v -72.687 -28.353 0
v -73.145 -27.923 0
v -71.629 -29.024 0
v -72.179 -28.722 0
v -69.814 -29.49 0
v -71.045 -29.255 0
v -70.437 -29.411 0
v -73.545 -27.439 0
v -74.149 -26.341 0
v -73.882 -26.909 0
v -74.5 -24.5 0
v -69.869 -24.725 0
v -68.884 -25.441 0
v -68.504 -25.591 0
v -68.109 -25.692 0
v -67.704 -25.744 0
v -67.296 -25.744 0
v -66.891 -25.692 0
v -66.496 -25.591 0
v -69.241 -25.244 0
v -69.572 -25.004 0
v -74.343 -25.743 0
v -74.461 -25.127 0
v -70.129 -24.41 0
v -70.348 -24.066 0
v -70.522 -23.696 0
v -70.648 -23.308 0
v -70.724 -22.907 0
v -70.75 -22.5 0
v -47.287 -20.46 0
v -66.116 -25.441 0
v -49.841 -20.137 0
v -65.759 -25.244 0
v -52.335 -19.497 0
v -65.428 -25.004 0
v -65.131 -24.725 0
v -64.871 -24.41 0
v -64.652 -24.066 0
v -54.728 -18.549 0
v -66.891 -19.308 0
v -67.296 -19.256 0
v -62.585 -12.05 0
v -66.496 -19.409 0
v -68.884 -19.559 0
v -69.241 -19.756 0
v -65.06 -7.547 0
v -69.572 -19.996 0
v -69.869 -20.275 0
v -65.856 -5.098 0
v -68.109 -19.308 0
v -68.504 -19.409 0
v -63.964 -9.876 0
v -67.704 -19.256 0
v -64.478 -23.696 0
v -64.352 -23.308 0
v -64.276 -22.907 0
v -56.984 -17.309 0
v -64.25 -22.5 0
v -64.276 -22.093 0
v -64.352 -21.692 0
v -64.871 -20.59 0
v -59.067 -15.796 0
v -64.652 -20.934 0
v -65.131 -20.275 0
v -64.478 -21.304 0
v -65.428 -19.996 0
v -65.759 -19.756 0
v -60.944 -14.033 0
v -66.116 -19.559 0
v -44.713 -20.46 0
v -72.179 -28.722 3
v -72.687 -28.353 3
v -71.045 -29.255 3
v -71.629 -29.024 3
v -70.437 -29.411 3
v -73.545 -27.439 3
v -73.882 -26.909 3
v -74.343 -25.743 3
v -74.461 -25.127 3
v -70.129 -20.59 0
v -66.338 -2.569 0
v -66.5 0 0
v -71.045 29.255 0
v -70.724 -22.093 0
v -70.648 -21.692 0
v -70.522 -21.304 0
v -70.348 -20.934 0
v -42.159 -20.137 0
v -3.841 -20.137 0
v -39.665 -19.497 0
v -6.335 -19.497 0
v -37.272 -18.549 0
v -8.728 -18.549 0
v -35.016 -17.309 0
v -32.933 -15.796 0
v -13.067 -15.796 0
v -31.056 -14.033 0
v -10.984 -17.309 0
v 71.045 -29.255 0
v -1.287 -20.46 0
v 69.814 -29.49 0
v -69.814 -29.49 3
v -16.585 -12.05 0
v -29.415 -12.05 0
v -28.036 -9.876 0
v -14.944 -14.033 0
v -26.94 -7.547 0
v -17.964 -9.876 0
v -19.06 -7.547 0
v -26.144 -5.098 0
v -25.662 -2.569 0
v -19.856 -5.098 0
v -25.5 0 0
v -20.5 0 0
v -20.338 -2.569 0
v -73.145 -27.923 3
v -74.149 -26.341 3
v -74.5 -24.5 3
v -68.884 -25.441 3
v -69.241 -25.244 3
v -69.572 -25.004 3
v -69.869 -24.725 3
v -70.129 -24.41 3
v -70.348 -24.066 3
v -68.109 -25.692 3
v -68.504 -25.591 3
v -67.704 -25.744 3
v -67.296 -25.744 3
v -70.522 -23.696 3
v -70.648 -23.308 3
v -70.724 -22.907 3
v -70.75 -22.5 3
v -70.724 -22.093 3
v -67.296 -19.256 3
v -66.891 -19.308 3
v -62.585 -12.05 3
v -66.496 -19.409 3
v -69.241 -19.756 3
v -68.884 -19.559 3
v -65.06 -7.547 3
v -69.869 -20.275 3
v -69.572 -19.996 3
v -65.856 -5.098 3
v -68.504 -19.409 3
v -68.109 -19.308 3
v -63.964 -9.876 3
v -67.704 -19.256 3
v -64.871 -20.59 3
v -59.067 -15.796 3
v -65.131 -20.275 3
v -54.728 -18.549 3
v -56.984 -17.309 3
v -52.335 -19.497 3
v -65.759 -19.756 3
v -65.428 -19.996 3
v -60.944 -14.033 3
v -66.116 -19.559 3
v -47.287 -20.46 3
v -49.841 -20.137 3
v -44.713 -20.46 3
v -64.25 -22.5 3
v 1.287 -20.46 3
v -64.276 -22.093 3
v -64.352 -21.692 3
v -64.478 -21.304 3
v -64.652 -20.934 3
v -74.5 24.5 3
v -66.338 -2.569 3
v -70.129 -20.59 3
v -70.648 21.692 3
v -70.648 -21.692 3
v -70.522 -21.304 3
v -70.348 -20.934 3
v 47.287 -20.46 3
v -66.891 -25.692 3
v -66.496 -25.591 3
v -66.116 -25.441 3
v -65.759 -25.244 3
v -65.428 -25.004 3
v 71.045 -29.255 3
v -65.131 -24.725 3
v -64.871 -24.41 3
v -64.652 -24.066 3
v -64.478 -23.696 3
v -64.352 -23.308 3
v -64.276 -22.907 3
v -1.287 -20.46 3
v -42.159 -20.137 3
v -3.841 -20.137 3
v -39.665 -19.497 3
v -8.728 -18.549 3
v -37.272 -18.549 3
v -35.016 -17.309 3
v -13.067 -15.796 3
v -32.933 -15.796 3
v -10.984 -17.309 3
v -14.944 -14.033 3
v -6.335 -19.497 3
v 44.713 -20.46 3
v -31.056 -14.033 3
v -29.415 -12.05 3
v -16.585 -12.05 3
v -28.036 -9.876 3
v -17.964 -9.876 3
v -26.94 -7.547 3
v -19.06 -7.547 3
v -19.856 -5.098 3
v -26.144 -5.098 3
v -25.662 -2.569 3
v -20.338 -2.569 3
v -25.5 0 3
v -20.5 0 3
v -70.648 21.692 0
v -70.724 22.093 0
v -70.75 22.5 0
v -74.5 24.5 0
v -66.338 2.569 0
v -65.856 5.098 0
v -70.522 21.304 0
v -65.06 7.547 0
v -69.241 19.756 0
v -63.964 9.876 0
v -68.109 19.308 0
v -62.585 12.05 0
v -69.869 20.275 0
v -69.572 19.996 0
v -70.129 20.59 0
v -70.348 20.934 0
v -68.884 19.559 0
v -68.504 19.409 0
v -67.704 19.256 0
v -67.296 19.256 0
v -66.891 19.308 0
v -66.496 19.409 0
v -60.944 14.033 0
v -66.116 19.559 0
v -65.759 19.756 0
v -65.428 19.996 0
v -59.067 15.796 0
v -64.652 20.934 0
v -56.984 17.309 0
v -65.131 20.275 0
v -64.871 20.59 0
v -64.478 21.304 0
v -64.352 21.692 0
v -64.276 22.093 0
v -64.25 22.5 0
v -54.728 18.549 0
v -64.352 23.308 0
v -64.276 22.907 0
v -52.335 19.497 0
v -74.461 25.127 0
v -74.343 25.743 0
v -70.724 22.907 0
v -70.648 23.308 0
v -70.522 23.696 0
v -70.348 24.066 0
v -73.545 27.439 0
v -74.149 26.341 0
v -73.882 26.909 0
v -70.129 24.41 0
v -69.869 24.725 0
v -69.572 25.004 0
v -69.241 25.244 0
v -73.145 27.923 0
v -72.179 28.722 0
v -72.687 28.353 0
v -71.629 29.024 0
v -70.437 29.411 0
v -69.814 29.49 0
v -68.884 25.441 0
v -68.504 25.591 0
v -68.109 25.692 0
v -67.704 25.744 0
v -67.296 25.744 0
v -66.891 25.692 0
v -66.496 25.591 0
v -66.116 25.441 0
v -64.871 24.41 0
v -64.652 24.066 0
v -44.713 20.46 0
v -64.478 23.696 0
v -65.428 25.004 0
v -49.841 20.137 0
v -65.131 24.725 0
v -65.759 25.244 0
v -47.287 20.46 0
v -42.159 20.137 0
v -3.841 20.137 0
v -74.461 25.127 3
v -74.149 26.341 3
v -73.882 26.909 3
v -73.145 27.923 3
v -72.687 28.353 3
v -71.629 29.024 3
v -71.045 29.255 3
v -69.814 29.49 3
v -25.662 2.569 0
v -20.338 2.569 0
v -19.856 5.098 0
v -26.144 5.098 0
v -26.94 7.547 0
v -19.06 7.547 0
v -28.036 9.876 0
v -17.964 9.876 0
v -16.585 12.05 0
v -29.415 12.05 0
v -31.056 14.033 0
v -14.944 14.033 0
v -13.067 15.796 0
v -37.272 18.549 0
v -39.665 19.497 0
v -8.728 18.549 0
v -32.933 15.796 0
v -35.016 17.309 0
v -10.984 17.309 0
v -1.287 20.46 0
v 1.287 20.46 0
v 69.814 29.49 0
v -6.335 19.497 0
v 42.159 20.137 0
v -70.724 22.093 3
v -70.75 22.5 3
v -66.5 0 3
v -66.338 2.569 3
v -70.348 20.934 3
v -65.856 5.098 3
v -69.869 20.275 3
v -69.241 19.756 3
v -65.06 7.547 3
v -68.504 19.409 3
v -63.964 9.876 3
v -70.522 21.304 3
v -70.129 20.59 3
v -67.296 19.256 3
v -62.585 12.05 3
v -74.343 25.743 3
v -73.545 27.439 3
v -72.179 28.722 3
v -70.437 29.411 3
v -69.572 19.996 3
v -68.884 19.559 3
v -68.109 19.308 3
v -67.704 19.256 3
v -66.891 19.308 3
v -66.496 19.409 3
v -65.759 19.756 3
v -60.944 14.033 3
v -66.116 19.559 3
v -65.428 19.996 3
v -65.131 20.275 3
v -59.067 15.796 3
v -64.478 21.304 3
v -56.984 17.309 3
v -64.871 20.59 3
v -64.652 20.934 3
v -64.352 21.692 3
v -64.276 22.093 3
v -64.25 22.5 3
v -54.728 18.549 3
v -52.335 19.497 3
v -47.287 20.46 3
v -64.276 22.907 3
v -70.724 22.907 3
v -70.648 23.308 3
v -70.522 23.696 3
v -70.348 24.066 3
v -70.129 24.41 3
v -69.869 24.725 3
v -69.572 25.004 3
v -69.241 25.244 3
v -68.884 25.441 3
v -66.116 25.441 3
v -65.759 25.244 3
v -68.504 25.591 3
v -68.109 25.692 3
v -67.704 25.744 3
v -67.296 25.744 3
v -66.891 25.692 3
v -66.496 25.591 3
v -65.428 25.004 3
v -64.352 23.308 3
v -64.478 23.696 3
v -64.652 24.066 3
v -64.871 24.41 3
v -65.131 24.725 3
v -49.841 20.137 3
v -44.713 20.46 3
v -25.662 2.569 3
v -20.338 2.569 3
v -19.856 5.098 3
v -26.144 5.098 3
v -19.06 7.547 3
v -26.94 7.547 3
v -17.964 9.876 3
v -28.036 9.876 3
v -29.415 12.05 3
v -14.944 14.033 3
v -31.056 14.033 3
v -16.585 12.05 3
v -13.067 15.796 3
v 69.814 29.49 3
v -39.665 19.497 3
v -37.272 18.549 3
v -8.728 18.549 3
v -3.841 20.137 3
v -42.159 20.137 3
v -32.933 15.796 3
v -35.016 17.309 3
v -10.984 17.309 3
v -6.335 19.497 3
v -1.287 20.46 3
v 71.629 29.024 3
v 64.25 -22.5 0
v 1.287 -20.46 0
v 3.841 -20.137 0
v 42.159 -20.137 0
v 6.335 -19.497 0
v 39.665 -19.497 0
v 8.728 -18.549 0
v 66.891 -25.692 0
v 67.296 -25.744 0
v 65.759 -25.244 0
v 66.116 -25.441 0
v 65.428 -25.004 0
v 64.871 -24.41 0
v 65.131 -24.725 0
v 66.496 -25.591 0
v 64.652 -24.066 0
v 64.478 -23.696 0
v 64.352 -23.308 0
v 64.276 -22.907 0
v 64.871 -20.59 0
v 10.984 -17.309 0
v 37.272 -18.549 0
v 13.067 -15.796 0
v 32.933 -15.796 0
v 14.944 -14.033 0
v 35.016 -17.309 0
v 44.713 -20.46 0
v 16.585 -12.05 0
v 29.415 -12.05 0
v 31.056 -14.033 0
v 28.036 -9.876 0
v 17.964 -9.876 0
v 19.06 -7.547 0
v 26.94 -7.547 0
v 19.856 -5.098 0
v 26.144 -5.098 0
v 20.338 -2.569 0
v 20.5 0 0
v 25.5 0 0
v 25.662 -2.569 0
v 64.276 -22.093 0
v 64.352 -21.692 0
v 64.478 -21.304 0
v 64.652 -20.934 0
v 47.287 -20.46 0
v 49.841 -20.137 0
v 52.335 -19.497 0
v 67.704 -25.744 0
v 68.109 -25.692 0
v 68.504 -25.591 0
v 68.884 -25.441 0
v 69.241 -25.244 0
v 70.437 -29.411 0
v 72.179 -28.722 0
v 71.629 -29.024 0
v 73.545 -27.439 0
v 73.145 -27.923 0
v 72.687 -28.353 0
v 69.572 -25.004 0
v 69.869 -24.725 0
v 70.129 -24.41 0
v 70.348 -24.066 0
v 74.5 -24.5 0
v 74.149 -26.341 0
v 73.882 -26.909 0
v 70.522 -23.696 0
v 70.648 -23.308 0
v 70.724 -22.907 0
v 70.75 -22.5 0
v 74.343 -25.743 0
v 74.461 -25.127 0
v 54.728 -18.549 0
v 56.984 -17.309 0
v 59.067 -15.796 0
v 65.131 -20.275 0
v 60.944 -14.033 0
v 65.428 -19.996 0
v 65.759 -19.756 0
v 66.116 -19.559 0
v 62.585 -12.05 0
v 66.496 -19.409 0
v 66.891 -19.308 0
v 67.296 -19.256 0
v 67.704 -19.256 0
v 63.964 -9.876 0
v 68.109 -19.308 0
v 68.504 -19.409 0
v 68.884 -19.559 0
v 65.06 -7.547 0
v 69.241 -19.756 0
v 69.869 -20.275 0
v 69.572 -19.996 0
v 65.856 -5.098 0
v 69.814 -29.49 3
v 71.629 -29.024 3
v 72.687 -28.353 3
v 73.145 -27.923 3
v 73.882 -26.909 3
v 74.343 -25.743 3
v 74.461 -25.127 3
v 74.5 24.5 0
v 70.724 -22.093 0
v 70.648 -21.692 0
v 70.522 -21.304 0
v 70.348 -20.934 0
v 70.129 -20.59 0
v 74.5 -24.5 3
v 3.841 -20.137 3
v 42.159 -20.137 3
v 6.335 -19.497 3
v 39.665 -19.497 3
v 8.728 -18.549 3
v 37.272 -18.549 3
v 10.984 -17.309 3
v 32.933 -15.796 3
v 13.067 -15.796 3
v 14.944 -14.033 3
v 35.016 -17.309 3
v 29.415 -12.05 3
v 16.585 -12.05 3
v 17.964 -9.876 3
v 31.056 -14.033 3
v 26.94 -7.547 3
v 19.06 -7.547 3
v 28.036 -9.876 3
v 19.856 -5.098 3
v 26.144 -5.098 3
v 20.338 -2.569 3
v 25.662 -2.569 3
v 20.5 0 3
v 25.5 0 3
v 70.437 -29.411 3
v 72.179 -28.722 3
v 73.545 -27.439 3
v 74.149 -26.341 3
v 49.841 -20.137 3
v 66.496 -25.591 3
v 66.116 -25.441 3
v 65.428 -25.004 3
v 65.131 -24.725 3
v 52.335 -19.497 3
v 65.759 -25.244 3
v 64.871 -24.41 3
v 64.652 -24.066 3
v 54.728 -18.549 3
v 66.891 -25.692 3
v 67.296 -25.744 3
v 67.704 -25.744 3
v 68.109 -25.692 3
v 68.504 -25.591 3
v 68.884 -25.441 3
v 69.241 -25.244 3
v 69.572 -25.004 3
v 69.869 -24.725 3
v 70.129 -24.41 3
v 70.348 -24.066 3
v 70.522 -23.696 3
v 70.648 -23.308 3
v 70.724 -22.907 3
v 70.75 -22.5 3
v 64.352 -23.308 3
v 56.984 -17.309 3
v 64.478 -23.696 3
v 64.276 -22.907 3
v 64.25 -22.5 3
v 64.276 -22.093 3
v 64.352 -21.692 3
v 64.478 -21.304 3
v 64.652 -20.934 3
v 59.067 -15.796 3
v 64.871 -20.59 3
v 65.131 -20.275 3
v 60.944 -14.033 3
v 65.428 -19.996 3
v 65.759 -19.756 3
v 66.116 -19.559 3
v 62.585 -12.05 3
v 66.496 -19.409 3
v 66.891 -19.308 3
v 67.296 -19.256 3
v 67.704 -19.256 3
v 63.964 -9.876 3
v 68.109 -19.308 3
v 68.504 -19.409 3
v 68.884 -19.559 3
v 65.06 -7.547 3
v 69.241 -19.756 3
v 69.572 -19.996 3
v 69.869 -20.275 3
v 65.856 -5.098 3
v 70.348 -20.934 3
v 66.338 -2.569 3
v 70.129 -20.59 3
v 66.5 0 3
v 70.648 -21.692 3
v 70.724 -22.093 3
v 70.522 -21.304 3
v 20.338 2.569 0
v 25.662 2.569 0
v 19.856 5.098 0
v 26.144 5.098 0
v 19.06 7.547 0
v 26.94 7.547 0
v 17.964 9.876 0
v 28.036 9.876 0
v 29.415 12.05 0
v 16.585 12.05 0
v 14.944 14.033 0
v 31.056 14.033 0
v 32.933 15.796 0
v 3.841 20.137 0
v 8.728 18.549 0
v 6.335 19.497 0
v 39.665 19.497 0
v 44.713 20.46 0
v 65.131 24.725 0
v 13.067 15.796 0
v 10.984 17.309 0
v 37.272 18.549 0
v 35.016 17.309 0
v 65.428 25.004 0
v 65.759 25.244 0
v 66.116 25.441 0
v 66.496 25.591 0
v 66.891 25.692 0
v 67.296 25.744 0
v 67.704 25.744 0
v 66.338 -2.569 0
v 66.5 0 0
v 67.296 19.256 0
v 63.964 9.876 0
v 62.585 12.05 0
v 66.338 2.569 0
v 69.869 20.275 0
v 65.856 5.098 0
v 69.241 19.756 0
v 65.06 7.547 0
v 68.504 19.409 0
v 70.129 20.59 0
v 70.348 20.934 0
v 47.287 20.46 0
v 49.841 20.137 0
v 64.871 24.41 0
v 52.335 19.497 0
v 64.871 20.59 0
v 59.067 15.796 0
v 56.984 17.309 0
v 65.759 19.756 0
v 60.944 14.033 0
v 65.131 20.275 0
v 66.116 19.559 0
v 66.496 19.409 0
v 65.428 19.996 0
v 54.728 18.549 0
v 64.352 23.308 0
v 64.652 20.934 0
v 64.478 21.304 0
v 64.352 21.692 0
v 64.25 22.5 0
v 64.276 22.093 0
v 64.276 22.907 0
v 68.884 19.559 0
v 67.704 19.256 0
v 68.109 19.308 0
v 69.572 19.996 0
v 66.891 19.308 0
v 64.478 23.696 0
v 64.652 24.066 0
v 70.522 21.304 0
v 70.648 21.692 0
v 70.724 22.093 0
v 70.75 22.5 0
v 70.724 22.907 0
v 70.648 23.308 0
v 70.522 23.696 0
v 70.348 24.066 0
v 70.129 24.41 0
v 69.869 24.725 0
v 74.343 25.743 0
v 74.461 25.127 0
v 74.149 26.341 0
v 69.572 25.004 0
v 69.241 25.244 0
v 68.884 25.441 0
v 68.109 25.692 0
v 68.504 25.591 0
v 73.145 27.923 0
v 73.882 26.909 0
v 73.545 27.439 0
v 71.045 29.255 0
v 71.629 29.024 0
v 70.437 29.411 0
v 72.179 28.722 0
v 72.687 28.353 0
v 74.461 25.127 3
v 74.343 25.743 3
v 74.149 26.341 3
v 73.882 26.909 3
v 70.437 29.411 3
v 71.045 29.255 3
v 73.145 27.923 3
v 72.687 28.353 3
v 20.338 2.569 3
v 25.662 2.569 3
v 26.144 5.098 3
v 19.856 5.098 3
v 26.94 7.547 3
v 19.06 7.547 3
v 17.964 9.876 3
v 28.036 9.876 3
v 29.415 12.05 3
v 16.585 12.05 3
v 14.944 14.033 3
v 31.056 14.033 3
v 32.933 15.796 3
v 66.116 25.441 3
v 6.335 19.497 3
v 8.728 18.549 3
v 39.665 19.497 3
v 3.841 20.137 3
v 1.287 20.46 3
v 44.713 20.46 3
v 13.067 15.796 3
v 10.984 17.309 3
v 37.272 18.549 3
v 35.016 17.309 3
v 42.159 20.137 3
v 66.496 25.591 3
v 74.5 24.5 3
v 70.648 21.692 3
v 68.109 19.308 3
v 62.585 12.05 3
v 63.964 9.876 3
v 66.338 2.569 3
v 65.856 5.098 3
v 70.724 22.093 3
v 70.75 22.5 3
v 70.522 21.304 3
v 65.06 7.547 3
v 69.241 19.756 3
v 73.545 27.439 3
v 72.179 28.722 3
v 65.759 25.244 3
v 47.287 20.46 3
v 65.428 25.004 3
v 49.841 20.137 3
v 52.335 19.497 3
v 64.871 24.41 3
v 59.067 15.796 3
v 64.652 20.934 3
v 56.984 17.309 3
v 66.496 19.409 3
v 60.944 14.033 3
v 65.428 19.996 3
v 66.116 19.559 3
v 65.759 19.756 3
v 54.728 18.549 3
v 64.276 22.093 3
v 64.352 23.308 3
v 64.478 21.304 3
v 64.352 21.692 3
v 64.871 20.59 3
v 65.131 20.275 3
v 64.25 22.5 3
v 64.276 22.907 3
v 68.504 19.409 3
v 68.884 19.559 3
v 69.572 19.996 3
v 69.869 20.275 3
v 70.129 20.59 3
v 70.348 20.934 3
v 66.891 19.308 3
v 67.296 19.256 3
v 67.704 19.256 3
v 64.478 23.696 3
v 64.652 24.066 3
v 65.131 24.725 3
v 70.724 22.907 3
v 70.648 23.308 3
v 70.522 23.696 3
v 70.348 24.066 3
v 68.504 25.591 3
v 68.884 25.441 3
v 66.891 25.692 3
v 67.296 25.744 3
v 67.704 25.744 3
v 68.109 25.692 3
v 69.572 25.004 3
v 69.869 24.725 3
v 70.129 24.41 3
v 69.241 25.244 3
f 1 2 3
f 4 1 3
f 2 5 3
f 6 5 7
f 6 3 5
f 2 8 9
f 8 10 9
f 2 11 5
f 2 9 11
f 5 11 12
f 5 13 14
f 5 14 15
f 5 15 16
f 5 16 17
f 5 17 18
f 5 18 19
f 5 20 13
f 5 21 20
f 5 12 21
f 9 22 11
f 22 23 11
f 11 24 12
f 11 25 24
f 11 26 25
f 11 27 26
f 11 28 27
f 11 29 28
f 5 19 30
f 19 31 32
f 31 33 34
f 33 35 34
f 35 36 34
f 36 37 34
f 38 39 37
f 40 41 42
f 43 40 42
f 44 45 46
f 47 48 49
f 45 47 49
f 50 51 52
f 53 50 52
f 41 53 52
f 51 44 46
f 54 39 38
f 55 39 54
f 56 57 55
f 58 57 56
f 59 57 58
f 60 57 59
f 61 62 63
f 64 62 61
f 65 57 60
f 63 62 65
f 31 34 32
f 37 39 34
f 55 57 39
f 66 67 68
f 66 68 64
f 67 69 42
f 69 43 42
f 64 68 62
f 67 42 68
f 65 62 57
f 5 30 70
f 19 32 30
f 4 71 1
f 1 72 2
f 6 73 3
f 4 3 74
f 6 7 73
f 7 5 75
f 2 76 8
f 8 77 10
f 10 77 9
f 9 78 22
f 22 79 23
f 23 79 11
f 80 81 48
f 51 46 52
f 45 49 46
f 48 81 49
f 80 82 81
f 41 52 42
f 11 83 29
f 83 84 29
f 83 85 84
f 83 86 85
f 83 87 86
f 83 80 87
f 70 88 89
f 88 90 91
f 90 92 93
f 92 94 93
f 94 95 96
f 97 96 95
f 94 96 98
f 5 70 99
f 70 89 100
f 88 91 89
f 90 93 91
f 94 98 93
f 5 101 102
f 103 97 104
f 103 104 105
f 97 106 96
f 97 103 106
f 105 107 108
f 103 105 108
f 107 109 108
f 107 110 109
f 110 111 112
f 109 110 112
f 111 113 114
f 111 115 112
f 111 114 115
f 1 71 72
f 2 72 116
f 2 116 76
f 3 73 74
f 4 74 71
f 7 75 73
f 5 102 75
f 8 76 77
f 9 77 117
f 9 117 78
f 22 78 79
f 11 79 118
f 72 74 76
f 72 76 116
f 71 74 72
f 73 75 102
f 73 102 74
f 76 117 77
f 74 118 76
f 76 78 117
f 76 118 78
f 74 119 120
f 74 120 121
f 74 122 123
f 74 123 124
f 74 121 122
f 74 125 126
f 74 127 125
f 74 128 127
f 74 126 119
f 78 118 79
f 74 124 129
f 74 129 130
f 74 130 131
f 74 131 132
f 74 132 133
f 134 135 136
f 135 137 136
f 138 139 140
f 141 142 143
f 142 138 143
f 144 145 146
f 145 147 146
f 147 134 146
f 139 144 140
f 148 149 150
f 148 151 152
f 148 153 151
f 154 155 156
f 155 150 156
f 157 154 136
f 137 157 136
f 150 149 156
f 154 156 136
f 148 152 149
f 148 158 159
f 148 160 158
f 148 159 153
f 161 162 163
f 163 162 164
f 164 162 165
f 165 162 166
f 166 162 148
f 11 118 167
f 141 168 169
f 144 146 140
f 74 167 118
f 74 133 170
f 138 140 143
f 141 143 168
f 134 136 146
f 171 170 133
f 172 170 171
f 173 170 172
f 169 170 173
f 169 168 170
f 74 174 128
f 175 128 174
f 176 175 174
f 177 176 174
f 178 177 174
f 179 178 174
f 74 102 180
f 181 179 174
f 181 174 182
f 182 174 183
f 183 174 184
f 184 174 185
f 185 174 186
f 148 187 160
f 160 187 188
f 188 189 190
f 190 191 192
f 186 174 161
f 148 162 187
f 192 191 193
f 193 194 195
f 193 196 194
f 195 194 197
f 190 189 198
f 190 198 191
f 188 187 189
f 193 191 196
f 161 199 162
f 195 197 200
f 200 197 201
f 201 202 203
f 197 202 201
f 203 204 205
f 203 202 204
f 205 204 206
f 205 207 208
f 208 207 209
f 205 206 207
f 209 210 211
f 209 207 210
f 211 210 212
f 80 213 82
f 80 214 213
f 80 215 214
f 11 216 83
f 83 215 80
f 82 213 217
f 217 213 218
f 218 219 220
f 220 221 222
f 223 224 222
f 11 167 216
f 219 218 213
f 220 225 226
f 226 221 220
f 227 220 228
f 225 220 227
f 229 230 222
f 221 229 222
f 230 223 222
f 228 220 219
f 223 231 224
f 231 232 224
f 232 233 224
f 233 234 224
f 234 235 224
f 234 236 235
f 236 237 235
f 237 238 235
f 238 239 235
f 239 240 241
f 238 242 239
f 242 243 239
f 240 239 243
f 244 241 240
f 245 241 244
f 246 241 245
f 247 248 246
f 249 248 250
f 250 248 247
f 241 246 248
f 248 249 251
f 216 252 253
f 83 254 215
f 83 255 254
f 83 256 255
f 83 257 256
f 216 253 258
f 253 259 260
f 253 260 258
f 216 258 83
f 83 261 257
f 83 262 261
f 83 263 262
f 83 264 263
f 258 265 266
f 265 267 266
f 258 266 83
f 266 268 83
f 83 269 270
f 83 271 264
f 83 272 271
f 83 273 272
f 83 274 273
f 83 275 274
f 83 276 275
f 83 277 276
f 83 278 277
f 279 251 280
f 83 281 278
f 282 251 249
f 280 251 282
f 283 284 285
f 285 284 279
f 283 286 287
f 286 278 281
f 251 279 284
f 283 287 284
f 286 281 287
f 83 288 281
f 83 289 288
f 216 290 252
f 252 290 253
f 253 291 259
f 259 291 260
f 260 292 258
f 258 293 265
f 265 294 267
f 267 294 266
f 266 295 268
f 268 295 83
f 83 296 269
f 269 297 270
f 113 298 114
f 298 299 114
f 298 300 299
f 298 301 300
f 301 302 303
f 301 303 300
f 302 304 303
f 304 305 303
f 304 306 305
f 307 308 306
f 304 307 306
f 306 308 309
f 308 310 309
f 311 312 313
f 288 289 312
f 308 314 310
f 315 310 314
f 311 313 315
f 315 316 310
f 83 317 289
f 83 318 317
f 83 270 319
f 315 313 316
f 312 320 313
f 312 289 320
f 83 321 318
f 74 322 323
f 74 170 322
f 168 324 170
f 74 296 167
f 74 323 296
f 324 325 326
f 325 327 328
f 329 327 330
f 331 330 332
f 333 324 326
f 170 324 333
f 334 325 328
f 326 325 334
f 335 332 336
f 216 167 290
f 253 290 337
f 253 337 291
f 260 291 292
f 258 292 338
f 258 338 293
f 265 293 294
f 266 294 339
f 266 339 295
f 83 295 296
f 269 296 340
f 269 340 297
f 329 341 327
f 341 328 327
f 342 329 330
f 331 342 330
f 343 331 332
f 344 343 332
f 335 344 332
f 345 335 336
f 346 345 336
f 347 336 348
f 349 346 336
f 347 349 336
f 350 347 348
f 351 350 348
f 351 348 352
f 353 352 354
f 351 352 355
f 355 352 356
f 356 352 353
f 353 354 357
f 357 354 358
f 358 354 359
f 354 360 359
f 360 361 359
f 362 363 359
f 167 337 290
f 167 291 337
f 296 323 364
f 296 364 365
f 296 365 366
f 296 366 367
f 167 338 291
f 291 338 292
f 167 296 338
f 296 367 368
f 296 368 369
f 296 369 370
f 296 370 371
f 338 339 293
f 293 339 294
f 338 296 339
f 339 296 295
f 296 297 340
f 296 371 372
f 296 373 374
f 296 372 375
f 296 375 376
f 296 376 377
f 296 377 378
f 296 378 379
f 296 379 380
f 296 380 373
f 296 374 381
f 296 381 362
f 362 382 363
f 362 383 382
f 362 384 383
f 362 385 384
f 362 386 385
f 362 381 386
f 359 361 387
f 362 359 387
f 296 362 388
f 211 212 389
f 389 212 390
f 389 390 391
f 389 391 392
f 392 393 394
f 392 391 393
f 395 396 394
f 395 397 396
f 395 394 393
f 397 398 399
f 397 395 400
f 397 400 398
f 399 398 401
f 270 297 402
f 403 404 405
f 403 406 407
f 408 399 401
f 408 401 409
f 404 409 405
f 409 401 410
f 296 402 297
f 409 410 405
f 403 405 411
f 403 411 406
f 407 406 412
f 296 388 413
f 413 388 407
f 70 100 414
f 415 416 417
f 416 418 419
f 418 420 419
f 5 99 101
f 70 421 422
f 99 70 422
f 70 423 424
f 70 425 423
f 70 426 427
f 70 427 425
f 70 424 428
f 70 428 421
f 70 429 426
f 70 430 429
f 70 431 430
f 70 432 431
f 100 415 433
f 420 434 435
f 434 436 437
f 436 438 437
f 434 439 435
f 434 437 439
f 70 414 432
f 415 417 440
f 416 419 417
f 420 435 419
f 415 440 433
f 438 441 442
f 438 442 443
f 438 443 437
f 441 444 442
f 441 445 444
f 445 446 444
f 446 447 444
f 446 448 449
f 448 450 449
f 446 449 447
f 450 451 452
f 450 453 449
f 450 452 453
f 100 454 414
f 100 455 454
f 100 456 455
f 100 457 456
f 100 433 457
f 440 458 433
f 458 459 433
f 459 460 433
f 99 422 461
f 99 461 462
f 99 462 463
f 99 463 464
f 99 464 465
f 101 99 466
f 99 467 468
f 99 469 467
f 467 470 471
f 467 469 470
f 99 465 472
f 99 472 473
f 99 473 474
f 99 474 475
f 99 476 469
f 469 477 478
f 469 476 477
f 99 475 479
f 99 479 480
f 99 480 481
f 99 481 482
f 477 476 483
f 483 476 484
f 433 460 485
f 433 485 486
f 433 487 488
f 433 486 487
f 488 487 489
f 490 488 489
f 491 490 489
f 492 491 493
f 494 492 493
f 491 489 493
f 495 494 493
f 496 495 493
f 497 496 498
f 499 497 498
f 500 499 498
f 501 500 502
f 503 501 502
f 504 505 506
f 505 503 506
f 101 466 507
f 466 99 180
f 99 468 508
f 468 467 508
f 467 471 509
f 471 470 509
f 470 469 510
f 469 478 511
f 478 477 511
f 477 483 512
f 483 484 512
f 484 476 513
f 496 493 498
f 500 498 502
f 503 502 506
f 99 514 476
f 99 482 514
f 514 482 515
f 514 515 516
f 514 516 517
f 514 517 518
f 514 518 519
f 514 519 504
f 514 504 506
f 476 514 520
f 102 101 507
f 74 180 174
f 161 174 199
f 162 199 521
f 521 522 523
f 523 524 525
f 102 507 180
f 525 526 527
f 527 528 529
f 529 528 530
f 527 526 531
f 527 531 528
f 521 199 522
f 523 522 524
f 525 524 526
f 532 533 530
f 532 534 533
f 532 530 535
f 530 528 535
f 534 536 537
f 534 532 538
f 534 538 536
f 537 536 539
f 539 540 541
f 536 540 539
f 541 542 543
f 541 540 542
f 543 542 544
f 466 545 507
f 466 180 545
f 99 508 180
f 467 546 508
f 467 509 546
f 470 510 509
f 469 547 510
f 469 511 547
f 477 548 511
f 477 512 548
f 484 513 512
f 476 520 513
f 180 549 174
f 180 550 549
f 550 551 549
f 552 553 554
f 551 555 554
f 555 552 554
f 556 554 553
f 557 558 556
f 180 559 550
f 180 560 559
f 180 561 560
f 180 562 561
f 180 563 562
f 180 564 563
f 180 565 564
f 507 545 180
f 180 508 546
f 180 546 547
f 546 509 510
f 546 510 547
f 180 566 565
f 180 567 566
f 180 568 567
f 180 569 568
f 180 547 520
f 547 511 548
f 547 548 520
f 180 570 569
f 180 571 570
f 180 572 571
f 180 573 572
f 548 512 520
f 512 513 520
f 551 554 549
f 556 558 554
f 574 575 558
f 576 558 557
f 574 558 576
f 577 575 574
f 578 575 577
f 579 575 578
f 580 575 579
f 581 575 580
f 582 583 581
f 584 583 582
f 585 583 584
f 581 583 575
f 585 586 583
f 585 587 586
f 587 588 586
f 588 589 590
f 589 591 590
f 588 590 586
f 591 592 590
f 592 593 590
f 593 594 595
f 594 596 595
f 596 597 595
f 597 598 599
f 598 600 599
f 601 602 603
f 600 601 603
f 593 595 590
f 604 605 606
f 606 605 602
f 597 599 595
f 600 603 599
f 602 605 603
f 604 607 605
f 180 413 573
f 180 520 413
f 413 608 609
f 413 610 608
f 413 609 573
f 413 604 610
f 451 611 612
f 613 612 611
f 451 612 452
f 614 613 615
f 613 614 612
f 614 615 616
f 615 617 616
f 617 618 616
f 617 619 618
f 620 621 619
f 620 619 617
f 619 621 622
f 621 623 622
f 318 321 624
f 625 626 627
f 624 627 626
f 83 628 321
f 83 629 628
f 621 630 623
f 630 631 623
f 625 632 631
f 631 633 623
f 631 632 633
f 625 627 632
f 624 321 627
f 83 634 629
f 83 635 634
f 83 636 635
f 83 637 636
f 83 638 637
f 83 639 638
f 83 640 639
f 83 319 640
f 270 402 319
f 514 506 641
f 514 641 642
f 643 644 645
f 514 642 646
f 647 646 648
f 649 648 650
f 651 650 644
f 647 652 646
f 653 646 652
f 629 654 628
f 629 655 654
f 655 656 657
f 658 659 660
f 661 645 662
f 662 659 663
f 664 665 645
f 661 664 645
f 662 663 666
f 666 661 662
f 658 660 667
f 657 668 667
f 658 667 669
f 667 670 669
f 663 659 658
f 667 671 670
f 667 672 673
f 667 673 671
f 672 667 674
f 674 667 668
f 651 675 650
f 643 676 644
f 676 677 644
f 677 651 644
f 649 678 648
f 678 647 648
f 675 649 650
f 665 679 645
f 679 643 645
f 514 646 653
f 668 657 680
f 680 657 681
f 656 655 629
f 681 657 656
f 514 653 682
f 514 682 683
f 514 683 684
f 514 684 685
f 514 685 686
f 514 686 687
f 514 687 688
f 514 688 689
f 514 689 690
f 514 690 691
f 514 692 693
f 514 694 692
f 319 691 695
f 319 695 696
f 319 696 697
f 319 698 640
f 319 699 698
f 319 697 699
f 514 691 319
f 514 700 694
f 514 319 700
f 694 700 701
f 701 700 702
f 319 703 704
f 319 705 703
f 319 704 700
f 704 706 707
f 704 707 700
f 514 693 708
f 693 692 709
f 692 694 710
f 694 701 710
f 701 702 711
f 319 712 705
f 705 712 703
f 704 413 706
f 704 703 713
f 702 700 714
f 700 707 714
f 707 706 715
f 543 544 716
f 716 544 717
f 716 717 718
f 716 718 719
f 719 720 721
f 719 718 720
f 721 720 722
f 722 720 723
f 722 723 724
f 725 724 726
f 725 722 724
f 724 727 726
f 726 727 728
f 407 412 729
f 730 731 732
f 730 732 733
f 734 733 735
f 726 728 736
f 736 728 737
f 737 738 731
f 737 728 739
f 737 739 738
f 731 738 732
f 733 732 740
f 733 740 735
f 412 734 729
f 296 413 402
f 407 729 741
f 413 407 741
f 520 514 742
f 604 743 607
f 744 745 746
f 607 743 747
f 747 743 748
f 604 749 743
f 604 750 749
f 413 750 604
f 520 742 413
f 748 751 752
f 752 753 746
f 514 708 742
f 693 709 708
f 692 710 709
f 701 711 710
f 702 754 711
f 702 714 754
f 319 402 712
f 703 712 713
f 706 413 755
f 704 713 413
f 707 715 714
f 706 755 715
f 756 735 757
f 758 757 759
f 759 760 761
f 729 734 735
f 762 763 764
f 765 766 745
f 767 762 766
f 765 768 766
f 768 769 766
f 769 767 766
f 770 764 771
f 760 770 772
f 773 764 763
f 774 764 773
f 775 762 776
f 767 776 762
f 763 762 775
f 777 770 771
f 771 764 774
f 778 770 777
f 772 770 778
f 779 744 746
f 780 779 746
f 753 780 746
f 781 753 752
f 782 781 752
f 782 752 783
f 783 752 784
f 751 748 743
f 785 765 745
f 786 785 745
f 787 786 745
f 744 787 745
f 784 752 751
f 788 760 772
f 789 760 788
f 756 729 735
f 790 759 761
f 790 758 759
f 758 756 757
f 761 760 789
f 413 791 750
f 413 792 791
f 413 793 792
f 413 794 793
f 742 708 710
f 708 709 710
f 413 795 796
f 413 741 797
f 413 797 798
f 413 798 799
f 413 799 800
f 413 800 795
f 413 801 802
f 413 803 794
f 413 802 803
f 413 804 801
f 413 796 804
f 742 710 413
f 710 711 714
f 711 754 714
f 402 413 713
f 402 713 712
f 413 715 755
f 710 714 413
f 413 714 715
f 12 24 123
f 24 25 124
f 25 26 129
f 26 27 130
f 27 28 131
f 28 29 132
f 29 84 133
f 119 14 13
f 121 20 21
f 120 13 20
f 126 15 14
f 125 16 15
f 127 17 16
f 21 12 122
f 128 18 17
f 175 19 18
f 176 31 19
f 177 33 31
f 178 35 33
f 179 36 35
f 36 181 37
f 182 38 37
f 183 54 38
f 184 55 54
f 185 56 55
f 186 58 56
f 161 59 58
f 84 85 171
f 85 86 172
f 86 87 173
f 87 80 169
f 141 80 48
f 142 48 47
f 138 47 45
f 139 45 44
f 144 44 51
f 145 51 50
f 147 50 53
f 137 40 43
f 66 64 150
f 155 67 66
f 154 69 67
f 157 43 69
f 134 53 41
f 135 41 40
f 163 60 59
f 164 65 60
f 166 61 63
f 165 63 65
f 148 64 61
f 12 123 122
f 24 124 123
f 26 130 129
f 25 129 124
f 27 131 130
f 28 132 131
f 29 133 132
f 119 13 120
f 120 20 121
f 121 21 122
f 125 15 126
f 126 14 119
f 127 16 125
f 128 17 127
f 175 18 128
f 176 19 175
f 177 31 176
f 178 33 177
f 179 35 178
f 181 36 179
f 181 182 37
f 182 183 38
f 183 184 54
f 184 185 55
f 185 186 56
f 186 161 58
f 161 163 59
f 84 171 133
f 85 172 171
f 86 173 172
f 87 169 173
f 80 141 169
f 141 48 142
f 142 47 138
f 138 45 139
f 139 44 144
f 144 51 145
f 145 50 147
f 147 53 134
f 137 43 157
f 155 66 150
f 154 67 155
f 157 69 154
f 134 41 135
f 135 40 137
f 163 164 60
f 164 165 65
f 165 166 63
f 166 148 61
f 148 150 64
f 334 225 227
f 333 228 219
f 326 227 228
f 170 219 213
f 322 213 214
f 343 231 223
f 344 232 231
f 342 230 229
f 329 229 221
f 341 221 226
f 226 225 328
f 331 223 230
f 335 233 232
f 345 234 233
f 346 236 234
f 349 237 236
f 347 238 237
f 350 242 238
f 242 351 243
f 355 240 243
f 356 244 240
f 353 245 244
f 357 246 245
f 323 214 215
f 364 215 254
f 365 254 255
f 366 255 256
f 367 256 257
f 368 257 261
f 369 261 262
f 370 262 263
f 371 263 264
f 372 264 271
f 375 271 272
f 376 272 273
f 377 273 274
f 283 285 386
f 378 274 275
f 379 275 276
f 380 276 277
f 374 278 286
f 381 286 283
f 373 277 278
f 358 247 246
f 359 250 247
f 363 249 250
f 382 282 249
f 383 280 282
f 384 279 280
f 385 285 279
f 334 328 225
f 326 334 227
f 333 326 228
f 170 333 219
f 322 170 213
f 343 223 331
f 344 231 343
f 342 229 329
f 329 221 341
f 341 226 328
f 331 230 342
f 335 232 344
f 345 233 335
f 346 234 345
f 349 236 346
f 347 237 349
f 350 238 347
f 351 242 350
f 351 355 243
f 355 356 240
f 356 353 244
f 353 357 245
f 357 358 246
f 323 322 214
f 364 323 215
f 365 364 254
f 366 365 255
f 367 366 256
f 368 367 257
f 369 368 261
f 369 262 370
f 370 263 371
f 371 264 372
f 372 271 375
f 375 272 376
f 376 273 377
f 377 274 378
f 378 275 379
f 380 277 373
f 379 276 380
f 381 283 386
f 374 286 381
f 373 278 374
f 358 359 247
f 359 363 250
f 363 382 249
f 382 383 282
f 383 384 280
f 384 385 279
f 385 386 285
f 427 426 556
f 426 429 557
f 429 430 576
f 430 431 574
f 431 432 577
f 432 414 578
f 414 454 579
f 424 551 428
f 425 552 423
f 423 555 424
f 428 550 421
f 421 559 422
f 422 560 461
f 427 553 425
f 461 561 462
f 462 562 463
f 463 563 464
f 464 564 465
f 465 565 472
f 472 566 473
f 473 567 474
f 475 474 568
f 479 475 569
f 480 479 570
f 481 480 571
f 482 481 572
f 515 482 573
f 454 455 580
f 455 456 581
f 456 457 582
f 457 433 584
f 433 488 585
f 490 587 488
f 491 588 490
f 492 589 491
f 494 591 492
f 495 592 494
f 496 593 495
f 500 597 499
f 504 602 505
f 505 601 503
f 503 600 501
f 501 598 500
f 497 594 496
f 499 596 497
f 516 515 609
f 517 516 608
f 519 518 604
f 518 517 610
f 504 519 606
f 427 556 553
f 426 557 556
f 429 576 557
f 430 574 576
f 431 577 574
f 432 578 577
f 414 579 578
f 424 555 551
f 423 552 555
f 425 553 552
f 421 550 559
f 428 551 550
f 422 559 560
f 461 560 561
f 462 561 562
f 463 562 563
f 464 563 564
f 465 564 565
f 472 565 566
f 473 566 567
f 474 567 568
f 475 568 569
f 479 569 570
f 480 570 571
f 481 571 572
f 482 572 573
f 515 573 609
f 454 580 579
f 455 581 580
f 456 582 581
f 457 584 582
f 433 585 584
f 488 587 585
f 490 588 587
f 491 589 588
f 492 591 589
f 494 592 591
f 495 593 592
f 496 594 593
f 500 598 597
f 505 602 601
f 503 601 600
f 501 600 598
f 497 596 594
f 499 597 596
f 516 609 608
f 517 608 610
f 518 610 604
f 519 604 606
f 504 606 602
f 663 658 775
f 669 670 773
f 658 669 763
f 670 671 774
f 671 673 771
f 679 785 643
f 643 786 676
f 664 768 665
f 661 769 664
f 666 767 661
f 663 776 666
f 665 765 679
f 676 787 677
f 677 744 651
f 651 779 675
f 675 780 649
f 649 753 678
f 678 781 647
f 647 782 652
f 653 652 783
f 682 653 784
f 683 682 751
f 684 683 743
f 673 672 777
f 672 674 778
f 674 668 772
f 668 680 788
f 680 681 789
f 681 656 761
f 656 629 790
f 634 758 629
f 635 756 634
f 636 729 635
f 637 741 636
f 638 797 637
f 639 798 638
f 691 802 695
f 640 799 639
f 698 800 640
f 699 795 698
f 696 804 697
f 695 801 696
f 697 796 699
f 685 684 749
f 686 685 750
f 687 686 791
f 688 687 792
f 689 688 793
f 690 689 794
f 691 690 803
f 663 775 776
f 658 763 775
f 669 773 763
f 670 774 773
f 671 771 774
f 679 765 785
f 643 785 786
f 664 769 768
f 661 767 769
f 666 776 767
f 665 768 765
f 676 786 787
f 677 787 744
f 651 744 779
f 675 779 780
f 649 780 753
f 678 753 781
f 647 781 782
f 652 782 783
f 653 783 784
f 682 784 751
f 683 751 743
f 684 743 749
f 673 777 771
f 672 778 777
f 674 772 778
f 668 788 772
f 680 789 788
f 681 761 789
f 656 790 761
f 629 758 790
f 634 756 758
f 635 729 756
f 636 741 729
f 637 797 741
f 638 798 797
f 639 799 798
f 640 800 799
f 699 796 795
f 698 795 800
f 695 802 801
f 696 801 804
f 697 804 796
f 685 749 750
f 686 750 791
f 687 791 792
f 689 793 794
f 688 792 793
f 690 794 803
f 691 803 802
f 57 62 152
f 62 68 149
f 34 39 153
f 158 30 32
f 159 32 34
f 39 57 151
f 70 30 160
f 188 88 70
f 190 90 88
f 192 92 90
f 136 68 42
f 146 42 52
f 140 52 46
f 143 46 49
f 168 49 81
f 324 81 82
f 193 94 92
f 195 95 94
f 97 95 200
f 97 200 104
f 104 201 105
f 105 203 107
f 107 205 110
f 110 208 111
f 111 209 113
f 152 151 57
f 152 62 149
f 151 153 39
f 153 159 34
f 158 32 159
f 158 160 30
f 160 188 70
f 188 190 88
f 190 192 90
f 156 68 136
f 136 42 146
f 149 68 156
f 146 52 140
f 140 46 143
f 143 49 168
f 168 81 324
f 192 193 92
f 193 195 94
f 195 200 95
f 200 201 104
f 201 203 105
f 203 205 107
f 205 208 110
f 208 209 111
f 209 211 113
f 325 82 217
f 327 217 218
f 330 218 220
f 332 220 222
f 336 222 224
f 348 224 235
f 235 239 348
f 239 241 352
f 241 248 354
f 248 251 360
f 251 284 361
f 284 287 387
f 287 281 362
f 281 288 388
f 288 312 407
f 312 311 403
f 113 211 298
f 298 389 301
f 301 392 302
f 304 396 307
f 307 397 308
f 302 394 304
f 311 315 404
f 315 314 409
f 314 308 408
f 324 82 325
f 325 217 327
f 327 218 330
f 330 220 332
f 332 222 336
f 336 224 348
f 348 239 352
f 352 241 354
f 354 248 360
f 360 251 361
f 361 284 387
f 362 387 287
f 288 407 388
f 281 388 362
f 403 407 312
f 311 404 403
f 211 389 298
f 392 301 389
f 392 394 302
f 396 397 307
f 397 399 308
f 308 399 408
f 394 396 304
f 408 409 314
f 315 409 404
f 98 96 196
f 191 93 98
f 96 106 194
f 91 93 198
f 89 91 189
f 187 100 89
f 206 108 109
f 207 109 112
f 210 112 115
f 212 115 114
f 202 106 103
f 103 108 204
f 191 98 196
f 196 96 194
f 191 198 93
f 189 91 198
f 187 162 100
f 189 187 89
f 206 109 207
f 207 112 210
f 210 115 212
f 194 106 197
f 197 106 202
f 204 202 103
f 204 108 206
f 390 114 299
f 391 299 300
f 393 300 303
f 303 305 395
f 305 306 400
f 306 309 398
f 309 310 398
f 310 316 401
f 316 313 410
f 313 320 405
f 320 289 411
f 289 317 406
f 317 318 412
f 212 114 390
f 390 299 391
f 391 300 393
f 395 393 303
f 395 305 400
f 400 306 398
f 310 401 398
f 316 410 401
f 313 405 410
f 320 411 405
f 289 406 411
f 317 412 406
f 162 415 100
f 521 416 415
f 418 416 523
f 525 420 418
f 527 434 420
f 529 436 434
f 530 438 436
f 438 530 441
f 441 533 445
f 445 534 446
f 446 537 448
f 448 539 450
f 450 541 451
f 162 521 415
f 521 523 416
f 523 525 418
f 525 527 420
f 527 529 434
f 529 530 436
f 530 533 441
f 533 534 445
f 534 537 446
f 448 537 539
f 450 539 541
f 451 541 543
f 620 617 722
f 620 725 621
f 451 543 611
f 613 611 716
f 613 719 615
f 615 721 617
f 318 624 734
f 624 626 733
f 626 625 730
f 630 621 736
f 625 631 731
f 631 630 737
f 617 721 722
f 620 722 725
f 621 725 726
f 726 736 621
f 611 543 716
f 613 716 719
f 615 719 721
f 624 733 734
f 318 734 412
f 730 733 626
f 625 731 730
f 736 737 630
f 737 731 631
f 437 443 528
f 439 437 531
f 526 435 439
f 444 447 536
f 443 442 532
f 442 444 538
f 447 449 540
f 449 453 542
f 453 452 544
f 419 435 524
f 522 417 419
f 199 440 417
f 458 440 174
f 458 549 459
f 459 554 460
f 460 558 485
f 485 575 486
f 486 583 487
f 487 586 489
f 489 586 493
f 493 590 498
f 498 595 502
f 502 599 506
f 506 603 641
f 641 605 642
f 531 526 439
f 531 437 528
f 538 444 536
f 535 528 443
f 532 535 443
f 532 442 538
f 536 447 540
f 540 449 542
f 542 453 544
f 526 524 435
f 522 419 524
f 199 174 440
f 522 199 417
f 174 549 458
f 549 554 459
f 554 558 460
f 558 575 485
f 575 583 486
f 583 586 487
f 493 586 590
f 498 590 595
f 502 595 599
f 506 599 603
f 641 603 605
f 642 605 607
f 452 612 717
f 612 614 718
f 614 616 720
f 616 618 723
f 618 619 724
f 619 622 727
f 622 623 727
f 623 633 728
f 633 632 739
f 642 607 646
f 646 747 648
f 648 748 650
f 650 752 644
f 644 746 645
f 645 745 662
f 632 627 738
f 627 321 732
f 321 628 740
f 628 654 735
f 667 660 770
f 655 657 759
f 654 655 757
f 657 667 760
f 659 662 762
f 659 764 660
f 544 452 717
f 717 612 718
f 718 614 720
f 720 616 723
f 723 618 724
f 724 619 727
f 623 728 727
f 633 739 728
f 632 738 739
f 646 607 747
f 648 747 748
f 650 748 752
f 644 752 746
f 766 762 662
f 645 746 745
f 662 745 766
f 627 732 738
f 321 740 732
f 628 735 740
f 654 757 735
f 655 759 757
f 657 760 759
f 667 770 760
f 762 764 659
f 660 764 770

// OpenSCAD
$fn = 50;

difference() {
	union() {
		hull() {
			translate(v = [-69.5, 24.5, 0]) {
				cylinder(h = 3, r = 5);
			}
			translate(v = [69.5, 24.5, 0]) {
				cylinder(h = 3, r = 5);
			}
			translate(v = [-69.5, -24.5, 0]) {
				cylinder(h = 3, r = 5);
			}
			translate(v = [69.5, -24.5, 0]) {
				cylinder(h = 3, r = 5);
			}
		}
	}
	union() {
		translate(v = [-67.5, -22.5, -100.0]) {
			cylinder(h = 200, r = 3.25);
		}
		translate(v = [-67.5, 22.5, -100.0]) {
			cylinder(h = 200, r = 3.25);
		}
		translate(v = [67.5, -22.5, -100.0]) {
			cylinder(h = 200, r = 3.25);
		}
		translate(v = [67.5, 22.5, -100.0]) {
			cylinder(h = 200, r = 3.25);
		}
		translate(v = [-67.5, -22.5, -100.0]) {
			cylinder(h = 200, r = 1.8);
		}
		translate(v = [-67.5, 22.5, -100.0]) {
			cylinder(h = 200, r = 1.8);
		}
		translate(v = [67.5, -22.5, -100.0]) {
			cylinder(h = 200, r = 1.8);
		}
		translate(v = [67.5, 22.5, -100.0]) {
			cylinder(h = 200, r = 1.8);
		}
		translate(v = [-46.0, 0, 0.0]) {
			cylinder(h = 3, r = 20.5);
		}
		cylinder(h = 3, r = 20.5);
		translate(v = [46.0, 0, 0.0]) {
			cylinder(h = 3, r = 20.5);
		}
	}
}
